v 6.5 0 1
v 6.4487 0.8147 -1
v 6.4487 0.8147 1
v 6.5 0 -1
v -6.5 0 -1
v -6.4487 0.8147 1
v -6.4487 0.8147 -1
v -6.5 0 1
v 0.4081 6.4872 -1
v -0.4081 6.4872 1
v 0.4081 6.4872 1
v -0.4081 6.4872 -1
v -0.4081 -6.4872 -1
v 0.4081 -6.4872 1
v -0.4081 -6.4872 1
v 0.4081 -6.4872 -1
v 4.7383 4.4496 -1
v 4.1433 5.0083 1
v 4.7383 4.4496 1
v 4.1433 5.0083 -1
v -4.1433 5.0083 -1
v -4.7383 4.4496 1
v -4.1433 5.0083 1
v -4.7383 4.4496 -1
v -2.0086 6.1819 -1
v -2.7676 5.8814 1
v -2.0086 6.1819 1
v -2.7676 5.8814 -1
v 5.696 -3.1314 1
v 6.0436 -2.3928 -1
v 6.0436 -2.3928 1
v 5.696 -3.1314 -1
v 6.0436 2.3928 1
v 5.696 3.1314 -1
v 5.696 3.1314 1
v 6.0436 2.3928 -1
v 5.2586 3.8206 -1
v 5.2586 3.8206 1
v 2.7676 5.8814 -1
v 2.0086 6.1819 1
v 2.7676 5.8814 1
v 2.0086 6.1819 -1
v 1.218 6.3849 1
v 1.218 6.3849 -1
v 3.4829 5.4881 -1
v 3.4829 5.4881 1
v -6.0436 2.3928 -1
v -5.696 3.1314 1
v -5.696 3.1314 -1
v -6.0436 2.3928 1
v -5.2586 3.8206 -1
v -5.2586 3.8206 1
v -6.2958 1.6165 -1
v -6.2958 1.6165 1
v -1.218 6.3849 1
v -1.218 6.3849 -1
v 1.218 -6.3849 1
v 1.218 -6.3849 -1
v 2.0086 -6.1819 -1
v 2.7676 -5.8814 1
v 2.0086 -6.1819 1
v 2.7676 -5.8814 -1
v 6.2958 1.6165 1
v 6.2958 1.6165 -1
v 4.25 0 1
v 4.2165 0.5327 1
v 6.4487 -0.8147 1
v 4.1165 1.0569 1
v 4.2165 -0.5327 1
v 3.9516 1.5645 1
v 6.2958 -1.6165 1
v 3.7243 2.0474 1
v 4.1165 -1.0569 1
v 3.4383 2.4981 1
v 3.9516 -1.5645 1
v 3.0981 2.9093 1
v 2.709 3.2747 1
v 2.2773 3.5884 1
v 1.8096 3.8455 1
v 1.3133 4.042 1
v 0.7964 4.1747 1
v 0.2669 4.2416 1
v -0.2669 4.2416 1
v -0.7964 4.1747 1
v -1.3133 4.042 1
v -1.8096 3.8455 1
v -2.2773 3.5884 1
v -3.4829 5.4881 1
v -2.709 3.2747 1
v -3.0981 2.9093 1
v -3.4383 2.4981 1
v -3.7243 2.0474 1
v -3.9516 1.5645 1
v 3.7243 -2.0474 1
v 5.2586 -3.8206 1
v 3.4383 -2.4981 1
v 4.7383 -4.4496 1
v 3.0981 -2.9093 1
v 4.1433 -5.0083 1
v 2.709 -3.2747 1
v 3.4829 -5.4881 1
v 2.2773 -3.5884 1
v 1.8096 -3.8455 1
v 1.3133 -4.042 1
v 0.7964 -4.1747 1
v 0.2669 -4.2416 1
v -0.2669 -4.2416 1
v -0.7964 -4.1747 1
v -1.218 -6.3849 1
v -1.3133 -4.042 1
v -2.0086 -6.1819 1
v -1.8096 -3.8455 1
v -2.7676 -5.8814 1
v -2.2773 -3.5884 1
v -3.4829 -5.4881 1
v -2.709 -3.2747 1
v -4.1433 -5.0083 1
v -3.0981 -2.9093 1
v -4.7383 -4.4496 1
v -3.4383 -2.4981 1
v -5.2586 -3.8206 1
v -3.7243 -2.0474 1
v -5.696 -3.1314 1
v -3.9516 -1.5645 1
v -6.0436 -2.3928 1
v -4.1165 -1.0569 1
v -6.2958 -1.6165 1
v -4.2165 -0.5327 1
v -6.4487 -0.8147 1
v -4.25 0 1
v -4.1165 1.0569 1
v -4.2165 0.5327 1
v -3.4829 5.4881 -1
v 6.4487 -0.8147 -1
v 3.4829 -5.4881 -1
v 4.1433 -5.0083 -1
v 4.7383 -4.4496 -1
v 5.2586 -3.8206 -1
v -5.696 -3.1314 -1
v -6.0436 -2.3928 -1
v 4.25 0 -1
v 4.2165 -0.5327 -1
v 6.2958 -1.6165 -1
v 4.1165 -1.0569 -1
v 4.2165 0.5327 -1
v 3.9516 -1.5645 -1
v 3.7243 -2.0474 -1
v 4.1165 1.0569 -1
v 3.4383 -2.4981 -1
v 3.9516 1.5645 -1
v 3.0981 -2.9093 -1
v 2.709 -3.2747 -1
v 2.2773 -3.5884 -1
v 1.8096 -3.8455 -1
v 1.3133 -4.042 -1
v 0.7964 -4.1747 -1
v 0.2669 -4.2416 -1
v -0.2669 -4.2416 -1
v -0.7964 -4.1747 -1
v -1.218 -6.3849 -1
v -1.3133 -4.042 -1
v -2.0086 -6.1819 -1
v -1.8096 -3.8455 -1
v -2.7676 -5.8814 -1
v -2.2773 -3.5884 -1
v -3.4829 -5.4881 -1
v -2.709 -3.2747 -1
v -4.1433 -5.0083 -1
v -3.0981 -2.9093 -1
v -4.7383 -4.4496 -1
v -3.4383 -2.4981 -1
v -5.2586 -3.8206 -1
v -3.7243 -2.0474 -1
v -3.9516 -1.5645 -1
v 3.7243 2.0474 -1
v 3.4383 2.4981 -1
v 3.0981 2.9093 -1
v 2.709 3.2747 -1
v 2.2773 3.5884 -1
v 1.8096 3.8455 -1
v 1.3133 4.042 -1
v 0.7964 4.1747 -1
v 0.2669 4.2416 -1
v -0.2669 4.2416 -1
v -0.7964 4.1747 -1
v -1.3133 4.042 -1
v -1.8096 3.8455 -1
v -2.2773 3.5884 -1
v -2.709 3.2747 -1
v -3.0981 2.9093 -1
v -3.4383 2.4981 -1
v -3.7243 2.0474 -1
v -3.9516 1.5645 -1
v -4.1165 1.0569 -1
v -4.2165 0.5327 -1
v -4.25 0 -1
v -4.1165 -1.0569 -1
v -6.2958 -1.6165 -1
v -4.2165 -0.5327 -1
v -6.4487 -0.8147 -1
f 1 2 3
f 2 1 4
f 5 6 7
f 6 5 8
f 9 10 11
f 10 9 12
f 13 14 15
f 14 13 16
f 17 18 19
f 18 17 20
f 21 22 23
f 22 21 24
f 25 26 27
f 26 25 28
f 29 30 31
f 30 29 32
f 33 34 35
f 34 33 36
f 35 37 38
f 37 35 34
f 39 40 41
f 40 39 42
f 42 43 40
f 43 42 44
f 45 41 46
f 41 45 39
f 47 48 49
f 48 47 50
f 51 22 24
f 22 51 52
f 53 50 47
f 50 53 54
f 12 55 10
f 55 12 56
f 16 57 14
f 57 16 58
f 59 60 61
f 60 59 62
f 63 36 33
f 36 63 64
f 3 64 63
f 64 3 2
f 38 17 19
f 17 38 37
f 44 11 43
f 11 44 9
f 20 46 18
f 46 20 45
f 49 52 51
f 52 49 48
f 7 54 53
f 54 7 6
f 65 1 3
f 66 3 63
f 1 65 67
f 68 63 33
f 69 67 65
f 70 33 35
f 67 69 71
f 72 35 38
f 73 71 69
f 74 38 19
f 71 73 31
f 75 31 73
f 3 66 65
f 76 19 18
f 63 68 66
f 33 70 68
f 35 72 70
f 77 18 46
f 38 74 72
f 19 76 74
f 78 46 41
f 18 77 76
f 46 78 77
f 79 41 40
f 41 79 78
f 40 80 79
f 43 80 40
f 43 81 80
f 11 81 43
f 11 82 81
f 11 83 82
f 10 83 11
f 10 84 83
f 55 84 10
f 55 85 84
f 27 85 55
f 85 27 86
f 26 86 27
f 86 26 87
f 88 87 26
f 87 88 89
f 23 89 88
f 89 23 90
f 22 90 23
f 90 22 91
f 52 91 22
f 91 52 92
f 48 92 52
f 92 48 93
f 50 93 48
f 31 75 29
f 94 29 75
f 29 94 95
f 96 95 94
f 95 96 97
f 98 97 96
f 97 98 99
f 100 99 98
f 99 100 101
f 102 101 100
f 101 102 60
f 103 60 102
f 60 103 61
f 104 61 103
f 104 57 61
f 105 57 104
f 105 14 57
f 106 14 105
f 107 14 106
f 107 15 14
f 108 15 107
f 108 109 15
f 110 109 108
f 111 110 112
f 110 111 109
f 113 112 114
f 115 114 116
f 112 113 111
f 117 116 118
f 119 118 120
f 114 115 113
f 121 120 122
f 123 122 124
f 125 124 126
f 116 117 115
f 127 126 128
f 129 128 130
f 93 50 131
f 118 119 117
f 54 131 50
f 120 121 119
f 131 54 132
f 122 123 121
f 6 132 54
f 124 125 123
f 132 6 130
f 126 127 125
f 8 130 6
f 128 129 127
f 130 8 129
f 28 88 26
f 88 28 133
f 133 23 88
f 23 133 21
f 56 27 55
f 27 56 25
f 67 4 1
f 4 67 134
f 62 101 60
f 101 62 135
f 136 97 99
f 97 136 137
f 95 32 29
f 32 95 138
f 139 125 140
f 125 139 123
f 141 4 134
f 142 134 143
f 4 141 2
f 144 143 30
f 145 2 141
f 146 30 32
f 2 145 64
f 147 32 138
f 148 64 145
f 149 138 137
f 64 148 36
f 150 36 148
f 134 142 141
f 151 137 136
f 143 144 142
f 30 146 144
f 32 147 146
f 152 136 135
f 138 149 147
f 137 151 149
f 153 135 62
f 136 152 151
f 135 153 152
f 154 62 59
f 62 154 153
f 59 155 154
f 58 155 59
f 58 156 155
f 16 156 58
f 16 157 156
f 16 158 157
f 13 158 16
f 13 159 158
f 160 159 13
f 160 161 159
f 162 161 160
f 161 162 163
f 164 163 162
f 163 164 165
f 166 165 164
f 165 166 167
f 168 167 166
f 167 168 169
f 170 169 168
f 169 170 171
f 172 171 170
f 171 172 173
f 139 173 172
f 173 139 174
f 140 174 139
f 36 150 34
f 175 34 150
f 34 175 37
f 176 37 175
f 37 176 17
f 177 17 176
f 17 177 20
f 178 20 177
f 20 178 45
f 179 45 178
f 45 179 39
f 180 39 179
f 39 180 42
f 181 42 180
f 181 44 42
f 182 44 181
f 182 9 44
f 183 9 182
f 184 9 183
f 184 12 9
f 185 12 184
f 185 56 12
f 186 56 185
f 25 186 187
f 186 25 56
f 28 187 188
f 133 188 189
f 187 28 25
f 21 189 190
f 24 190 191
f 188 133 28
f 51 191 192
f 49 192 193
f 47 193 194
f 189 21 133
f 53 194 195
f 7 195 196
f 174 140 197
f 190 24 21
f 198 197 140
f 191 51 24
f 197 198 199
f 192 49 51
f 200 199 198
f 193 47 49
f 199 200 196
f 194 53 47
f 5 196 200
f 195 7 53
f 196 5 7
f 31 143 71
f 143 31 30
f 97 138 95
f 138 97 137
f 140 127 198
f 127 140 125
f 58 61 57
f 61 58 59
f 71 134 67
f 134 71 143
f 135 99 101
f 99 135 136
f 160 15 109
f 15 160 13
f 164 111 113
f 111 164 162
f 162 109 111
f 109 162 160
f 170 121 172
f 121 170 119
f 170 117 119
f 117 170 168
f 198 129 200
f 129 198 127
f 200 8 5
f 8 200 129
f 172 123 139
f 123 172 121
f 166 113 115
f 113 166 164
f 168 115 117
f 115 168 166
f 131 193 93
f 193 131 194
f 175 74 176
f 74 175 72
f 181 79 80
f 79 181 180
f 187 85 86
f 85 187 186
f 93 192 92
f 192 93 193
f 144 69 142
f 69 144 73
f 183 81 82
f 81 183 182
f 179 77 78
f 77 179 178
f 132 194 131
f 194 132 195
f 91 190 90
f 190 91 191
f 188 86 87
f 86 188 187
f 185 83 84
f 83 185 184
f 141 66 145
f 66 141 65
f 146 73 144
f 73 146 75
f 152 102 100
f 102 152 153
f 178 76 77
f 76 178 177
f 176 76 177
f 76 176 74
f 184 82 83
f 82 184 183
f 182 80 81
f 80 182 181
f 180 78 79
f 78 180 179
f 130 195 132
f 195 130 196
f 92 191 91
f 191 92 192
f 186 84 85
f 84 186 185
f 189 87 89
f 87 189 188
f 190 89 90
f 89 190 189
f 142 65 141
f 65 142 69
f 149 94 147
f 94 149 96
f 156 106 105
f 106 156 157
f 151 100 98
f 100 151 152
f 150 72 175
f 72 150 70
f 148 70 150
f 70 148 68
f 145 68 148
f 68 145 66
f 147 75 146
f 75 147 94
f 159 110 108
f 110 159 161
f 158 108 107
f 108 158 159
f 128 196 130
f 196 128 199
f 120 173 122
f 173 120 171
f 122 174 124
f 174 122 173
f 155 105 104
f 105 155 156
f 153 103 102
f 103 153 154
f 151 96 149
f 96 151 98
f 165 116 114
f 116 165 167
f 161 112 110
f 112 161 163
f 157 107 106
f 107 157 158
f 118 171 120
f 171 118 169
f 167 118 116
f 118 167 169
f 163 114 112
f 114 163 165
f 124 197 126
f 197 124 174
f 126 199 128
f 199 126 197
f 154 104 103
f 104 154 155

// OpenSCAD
$fn = 50;


difference() {
	union() {
		translate(v = [0, 0, -1.0000000000]) {
			cylinder(h = 2, r = 6.5000000000);
		}
	}
	union() {
		translate(v = [0, 0, -100.0000000000]) {
			cylinder(h = 200, r = 4.2500000000);
		}
	}
}
